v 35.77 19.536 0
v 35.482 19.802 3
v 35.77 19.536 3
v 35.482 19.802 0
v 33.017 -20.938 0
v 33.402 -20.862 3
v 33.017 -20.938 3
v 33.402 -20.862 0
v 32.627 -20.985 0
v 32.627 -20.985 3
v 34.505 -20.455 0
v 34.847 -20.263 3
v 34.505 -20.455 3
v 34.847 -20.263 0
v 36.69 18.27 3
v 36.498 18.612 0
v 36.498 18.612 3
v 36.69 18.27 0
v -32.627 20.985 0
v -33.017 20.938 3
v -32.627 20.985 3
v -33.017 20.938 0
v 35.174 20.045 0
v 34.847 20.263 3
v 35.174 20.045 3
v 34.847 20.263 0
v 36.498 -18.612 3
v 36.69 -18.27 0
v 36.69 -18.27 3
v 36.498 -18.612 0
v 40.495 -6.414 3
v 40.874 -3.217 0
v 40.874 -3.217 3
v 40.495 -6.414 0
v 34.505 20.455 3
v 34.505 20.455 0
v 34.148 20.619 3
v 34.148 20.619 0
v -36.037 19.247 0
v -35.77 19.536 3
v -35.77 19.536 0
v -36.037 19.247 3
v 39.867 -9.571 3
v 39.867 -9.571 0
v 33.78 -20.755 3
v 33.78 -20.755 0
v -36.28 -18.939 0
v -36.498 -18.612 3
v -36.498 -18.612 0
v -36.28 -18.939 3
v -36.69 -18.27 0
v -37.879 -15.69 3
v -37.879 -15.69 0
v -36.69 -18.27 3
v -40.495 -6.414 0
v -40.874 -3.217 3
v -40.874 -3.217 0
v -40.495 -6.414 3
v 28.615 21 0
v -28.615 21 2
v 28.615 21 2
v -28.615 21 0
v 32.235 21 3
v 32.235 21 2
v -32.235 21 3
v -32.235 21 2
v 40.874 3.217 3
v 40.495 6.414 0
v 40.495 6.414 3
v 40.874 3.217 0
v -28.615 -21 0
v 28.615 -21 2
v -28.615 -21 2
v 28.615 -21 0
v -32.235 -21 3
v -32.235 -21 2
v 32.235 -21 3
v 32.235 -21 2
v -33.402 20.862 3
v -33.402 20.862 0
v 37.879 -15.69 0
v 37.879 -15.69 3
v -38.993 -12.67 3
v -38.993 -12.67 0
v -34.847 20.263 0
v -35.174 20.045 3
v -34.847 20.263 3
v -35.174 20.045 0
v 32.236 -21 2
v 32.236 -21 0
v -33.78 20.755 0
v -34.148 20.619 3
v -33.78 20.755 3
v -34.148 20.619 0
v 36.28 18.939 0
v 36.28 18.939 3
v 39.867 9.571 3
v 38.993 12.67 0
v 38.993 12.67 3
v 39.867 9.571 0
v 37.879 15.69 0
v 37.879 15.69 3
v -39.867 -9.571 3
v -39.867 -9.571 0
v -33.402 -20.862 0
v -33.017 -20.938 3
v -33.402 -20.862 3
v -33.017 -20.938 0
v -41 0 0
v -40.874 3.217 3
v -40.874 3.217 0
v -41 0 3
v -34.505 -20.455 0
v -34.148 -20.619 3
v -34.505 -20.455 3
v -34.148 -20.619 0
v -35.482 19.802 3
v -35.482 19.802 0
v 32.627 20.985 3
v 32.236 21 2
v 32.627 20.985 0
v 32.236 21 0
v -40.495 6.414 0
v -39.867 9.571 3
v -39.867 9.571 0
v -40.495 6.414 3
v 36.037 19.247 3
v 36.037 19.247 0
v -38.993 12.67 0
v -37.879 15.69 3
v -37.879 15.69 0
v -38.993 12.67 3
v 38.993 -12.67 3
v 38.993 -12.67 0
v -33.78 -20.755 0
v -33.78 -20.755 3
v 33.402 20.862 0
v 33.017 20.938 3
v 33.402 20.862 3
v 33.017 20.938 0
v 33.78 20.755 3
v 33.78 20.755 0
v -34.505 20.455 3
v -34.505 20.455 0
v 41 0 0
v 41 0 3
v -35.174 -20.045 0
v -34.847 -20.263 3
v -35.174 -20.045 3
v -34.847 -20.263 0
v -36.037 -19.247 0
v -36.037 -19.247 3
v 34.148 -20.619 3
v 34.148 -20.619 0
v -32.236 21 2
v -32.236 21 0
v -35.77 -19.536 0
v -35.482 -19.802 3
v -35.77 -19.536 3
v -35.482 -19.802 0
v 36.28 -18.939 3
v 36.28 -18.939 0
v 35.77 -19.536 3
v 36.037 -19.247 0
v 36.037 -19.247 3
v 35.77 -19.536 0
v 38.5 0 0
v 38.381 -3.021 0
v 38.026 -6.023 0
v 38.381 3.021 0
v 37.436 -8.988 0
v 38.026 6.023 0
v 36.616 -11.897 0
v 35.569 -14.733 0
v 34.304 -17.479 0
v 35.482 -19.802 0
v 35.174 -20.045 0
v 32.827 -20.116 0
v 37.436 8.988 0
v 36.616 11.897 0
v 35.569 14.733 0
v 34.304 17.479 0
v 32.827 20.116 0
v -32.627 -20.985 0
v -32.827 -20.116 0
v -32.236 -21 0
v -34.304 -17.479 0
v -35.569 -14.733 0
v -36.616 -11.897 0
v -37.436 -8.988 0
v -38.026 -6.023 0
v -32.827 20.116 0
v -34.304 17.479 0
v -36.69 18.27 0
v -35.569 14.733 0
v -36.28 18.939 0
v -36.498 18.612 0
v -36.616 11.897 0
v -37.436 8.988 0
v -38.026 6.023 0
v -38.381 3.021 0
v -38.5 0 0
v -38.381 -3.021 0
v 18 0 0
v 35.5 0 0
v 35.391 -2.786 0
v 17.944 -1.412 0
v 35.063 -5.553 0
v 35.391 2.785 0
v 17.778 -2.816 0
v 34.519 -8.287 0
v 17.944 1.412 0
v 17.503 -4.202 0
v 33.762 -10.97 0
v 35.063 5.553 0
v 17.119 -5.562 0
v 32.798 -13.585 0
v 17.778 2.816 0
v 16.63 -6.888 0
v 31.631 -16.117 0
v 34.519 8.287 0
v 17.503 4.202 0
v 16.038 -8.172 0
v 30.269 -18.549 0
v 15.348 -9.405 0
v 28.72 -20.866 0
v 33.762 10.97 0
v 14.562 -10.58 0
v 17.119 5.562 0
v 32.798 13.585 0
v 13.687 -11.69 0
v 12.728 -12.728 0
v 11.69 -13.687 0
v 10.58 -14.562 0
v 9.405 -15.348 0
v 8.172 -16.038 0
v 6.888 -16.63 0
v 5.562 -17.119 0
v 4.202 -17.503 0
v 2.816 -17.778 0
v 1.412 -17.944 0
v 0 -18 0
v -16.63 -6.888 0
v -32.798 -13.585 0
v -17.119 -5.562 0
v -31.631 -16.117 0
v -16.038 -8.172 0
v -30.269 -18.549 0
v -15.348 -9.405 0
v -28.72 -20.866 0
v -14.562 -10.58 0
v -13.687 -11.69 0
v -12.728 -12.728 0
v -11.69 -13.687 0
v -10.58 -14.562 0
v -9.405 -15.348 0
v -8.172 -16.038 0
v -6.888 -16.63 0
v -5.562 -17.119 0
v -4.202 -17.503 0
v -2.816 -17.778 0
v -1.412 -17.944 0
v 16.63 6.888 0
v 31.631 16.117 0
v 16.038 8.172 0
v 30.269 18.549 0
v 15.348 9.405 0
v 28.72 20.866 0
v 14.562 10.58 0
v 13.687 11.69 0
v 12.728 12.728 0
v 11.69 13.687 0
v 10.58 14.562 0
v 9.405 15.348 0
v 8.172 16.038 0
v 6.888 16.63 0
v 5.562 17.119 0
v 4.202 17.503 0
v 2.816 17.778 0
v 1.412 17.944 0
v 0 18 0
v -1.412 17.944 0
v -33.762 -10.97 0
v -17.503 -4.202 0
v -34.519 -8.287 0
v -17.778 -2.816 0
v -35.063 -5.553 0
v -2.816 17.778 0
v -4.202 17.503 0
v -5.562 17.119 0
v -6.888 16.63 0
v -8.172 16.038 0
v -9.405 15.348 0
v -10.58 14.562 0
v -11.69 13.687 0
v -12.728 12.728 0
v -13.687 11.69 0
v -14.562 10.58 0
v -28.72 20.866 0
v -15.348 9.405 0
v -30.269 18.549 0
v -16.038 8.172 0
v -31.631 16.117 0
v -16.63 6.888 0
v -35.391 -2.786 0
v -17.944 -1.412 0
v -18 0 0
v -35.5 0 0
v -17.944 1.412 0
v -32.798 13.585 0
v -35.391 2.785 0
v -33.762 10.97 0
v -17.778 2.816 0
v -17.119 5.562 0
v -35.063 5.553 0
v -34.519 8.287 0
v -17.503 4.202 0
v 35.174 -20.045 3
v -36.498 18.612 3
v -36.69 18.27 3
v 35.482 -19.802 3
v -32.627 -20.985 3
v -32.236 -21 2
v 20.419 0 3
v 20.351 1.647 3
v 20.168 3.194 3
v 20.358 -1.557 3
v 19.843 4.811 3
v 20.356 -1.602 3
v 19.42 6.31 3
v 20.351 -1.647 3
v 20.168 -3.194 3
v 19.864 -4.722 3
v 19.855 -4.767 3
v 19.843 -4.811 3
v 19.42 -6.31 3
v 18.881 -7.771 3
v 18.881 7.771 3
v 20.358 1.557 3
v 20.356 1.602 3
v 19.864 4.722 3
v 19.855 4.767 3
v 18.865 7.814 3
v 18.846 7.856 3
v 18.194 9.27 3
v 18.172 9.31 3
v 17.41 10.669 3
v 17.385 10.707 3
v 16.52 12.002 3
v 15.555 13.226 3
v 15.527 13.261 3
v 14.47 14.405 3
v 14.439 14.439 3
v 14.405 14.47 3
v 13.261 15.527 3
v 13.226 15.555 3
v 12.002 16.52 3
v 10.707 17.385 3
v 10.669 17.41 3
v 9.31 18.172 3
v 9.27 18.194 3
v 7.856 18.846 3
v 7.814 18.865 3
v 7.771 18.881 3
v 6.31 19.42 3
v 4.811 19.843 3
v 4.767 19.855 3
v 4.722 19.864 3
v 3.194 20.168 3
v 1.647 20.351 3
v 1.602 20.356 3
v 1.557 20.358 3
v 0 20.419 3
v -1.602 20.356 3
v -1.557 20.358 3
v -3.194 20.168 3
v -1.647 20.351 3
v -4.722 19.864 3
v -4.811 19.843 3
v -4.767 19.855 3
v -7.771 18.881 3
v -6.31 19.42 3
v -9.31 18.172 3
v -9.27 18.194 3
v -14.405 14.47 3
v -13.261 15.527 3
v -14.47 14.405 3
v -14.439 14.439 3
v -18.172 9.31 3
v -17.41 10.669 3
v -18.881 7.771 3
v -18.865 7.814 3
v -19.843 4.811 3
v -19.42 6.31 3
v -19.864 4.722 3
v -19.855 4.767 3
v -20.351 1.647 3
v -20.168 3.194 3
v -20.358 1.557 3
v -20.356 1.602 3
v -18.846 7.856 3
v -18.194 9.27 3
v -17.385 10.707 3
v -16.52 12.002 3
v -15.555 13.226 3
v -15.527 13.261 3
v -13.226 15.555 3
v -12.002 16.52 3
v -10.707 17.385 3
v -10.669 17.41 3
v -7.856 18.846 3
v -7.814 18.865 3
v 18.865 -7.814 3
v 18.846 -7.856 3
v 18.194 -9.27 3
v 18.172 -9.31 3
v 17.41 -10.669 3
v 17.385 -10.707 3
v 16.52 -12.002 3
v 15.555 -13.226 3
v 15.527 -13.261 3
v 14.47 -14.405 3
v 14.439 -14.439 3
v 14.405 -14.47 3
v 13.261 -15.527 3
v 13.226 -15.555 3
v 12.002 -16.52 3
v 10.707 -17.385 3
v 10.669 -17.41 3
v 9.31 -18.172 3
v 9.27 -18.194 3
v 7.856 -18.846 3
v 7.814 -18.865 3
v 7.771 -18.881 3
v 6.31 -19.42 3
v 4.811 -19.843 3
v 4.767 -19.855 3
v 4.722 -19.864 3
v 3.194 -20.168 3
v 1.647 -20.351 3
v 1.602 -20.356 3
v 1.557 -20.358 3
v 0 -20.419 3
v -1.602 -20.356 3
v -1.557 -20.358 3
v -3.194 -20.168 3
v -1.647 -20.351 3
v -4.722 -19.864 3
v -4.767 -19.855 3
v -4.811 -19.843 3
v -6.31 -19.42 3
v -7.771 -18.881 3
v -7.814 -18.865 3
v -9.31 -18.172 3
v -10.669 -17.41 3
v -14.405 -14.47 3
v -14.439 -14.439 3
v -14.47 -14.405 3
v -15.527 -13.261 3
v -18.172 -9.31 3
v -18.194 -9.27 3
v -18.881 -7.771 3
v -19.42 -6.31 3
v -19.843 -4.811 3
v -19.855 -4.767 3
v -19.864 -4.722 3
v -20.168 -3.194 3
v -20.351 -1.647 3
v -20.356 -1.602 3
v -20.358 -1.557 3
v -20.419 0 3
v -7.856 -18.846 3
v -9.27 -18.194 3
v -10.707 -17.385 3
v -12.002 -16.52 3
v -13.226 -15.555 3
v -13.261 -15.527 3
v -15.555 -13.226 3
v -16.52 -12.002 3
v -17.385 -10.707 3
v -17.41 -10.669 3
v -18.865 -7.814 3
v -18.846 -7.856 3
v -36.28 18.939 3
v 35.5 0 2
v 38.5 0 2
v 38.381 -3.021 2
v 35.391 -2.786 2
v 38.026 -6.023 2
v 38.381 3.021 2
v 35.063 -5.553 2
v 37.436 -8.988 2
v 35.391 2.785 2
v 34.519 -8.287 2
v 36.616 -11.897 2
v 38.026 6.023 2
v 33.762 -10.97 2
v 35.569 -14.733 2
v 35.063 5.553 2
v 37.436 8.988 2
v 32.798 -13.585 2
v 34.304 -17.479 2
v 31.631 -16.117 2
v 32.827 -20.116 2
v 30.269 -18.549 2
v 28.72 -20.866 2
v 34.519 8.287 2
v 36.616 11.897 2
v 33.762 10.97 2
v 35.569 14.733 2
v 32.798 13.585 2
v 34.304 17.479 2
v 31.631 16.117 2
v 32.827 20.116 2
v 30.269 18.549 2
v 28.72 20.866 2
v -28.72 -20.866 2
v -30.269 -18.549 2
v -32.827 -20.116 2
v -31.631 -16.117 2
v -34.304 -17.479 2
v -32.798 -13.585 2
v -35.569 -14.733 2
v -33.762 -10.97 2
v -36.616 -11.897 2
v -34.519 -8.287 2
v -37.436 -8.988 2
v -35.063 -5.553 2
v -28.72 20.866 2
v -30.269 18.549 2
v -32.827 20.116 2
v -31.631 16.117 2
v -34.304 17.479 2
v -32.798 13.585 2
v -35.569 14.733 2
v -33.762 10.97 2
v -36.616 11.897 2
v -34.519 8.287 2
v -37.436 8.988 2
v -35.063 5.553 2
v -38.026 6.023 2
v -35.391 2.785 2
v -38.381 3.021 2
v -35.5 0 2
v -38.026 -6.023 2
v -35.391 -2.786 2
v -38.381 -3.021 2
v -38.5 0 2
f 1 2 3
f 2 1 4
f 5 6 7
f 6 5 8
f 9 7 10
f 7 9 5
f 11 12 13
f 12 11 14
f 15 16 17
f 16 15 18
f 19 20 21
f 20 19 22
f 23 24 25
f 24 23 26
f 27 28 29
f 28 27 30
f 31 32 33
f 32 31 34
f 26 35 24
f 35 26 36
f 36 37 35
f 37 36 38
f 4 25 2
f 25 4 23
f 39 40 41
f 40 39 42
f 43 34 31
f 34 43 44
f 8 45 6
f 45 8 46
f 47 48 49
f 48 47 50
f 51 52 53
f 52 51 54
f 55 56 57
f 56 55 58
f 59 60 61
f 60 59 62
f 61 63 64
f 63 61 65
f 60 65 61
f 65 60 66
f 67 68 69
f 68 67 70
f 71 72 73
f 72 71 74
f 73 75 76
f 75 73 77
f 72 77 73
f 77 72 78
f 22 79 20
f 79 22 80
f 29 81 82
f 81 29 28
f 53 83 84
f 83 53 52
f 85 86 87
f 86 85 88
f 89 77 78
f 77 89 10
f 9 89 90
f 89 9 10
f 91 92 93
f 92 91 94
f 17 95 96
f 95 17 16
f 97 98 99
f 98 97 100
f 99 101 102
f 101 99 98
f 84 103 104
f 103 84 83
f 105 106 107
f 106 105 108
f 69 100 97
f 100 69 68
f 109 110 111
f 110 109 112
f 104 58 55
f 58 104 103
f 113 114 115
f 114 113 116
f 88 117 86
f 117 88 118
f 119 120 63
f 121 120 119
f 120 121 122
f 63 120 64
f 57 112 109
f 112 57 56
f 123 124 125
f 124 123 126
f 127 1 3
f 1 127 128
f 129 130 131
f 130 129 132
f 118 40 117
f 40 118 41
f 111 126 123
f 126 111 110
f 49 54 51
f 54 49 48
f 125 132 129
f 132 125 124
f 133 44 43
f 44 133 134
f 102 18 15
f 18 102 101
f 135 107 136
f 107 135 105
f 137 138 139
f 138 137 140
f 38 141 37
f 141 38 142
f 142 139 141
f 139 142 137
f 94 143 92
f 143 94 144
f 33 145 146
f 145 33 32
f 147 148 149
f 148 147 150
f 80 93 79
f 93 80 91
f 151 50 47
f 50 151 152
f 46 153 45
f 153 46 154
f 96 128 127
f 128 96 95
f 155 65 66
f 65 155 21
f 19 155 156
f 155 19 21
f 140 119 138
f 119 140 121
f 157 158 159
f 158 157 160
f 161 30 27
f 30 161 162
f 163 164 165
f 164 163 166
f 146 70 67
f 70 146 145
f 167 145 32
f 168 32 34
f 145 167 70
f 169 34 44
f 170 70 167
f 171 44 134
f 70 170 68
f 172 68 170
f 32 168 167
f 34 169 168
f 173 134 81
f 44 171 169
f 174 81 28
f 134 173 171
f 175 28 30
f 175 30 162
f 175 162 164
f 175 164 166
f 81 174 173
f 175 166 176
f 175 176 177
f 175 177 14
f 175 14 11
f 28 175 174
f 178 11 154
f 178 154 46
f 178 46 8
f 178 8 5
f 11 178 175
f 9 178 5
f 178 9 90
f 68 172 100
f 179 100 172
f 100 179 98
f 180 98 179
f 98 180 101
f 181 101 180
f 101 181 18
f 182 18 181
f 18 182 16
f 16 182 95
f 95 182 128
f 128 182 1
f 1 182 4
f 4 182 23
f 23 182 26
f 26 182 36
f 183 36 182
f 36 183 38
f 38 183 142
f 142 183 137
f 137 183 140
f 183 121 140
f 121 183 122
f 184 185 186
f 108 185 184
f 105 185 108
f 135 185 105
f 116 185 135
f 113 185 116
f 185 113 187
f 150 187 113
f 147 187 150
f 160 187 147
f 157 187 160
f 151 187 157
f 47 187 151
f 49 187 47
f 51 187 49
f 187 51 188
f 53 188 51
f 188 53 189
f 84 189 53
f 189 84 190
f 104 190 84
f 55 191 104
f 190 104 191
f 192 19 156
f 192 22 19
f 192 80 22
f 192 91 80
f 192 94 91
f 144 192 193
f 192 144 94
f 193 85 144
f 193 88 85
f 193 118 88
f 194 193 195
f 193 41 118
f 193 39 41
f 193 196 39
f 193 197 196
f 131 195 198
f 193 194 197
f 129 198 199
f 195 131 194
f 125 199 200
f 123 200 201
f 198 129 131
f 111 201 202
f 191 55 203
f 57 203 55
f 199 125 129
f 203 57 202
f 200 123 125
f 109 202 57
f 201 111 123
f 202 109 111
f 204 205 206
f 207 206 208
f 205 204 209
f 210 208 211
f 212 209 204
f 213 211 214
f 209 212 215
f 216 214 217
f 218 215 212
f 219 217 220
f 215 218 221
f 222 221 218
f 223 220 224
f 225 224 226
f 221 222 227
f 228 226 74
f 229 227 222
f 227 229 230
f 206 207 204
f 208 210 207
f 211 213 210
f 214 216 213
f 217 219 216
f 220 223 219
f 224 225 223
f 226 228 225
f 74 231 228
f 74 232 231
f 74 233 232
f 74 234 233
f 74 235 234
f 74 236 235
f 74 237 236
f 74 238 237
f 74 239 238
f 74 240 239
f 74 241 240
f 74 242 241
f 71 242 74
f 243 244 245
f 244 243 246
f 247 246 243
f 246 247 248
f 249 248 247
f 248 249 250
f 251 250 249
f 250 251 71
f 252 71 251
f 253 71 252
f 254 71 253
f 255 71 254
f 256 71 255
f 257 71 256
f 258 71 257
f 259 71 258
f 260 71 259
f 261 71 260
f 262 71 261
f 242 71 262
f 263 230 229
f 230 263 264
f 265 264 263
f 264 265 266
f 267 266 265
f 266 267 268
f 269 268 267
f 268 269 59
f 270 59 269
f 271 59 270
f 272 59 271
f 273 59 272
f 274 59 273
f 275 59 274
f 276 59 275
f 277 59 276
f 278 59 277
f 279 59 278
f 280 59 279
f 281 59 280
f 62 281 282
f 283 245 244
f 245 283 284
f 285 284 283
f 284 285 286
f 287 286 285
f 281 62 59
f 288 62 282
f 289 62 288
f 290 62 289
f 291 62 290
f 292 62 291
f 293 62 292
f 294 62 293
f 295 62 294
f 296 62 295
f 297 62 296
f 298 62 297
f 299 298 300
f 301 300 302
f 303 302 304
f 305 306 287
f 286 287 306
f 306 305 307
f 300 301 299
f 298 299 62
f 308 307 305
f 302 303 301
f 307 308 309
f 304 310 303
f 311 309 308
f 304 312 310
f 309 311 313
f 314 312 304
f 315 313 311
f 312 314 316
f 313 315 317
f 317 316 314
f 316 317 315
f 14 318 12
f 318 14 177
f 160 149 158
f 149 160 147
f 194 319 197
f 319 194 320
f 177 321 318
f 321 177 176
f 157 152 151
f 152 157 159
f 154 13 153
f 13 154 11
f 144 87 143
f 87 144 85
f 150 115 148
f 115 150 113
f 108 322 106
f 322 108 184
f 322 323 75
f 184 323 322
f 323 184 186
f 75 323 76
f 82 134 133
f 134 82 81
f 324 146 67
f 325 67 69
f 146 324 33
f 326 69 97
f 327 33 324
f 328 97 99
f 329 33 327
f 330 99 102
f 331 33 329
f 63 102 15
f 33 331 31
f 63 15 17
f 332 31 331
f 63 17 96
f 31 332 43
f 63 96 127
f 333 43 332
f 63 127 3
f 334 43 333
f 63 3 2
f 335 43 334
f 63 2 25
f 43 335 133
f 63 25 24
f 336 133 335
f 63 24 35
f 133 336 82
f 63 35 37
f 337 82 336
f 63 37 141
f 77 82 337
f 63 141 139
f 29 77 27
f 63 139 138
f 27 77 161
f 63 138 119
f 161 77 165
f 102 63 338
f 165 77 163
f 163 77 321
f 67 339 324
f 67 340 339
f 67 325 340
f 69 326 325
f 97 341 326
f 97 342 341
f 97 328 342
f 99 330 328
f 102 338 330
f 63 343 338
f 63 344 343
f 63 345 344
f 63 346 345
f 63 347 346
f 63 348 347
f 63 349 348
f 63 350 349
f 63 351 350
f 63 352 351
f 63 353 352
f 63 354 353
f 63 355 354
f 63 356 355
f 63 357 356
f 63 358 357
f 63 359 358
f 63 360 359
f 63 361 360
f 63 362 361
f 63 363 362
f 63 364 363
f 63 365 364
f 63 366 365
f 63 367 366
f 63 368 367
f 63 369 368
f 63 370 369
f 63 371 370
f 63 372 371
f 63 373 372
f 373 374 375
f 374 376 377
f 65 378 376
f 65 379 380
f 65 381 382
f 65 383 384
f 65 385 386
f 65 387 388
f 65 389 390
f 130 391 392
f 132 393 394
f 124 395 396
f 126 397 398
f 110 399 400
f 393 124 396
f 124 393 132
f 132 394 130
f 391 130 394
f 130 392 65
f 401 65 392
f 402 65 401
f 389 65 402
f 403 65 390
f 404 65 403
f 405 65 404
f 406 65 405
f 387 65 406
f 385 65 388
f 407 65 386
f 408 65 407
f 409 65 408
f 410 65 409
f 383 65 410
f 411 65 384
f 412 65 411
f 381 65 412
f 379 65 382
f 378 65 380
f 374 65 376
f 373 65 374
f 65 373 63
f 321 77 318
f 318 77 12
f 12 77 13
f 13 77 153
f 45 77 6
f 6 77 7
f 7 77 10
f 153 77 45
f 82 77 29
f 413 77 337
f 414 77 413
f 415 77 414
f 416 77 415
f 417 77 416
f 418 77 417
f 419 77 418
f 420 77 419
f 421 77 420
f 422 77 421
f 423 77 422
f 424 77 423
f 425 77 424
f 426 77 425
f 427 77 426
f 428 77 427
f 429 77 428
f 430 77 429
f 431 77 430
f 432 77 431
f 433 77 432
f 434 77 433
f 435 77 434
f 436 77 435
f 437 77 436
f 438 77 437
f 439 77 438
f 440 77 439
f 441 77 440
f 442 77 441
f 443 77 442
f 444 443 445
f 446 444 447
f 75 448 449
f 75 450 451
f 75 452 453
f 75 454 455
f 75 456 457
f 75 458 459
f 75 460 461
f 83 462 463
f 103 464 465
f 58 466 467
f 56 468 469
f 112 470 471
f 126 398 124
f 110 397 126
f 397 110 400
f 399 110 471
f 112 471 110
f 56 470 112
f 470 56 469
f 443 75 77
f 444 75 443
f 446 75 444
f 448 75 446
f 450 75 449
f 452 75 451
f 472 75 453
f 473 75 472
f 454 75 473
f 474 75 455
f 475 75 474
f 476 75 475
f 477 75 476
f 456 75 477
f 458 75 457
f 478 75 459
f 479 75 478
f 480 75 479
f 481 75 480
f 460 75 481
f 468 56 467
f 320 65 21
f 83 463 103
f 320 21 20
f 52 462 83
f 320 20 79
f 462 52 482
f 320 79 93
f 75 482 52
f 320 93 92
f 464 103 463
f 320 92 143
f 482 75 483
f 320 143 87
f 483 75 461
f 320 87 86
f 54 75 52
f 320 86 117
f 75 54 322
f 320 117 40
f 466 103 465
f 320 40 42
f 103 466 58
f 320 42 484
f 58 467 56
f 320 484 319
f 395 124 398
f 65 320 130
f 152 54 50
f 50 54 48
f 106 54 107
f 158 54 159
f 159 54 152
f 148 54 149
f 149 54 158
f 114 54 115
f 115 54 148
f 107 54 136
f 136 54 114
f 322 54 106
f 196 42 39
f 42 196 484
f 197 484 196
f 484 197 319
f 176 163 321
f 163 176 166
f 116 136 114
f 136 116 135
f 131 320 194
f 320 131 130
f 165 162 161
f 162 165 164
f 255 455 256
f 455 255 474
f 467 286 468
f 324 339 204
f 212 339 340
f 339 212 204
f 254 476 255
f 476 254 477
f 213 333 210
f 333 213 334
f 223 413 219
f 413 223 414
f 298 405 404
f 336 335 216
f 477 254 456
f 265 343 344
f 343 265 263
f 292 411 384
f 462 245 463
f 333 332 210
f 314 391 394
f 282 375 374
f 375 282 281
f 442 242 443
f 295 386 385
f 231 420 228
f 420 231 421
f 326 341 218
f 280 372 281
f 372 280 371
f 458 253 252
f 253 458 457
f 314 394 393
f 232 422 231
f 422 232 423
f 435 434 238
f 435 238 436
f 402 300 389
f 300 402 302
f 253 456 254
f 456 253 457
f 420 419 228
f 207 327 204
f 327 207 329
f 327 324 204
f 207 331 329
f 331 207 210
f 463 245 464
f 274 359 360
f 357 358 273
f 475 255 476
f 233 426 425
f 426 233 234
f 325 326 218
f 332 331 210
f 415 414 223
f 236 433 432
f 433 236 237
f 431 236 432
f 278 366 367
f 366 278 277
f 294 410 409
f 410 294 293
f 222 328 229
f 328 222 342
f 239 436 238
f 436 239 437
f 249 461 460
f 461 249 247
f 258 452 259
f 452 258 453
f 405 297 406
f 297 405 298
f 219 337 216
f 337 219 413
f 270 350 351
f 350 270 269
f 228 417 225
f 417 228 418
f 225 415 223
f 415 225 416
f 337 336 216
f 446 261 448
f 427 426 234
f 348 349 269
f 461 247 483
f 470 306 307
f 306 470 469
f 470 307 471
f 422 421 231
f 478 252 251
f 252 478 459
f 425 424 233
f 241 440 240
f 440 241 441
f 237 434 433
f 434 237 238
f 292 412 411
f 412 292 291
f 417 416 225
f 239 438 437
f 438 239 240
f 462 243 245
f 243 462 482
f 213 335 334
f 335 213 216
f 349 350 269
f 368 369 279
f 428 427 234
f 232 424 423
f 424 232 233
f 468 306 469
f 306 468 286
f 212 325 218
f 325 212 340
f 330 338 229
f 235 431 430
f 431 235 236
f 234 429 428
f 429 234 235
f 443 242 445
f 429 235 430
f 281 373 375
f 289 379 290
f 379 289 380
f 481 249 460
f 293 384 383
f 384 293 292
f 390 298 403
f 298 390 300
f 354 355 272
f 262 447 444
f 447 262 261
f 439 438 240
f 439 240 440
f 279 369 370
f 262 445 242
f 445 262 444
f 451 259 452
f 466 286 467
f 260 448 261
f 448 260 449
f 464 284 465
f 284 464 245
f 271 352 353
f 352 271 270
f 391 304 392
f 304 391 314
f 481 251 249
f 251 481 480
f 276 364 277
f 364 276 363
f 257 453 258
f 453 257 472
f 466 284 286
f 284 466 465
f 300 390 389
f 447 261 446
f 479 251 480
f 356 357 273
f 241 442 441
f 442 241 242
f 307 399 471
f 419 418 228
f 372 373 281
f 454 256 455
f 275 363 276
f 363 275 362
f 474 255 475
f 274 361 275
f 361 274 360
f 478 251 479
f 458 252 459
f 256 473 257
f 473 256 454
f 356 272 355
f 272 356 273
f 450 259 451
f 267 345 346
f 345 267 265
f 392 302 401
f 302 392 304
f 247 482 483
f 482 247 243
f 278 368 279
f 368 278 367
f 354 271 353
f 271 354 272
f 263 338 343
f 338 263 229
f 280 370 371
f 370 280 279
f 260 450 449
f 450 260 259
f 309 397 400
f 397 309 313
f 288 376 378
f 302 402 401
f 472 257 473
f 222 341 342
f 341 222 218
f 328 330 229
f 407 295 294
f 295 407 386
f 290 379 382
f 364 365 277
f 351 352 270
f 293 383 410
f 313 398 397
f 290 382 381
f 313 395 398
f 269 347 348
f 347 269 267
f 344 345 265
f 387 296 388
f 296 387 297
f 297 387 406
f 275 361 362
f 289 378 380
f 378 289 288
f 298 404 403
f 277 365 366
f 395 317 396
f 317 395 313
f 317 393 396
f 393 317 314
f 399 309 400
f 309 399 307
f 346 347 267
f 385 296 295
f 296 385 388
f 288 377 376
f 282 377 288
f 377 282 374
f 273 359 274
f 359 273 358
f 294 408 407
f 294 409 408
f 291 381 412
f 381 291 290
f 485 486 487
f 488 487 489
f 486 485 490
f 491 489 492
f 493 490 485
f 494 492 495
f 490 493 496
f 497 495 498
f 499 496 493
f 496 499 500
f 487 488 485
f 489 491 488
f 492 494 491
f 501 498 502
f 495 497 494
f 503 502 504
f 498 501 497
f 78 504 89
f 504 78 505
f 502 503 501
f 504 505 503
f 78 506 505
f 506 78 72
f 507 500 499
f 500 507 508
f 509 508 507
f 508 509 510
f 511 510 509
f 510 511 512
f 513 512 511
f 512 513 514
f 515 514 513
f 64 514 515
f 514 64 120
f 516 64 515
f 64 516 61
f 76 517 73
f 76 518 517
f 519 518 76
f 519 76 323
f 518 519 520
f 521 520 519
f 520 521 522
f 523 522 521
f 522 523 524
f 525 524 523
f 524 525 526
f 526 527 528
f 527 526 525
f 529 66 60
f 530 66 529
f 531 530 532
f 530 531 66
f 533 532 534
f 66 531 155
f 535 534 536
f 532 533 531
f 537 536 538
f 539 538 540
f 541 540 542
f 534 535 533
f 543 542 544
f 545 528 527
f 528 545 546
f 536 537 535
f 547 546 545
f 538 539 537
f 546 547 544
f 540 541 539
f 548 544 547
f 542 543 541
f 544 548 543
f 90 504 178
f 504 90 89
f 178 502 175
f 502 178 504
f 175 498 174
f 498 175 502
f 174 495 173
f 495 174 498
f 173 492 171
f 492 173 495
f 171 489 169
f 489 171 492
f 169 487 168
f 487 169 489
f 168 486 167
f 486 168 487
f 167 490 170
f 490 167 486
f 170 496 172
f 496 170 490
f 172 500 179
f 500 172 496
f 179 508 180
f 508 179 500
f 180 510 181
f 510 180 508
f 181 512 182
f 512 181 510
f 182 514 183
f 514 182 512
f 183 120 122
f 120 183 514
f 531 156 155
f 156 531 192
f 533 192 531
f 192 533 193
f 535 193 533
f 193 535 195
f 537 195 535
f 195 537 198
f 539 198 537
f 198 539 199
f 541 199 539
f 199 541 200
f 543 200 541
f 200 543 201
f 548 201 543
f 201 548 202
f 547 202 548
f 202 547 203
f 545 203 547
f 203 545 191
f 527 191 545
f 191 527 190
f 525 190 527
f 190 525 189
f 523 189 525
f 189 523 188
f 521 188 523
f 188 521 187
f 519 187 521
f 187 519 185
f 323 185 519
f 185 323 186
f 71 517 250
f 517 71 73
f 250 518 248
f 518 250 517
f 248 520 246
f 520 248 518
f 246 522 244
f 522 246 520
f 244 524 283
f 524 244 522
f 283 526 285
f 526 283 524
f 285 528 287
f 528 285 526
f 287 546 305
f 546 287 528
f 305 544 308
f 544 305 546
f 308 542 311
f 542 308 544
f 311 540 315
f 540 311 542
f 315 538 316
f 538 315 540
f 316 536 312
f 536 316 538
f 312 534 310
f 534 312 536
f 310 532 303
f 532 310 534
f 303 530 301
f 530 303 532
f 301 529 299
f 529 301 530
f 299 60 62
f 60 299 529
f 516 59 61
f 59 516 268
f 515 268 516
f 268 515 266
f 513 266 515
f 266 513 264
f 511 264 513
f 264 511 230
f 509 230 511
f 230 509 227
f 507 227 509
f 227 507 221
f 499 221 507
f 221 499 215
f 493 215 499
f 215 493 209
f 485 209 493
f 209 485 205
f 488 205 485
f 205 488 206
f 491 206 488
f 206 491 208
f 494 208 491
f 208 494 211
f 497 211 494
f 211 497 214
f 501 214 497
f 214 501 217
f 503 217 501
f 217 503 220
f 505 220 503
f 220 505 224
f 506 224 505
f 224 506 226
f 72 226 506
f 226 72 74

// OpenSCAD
// file: scad-utils/mirror.scad
// Laser Tunnel -- Angled Mirror Holder
// Adrian McCarthy 2022

// A larger angle makes a wider cone of light. (degrees)
Angle = 5; // [3:1:20]

// The mirror should not be wider than the hub of the fan. (mm)
Mirror_Diameter = 25.4; // [20:0.2:27]

// The mirror should be thin and light. (mm)
Mirror_Thickness = 1.75; // [1:0.25:2]

// Some dimensions may be optimized for your printer's nozzle size, but the default value should work for most. (mm)
Nozzle_Diameter = 0.4;  // [0.1:0.1:0.8]

module angled_mirror_holder(angle=5, mirror_d=25.4, mirror_th=1.75, nozzle_d=0.4) {
    h = mirror_d;
    inner_d = mirror_d + nozzle_d;
    outer_d = inner_d + 2;
    box = sqrt(2)*outer_d;
    intersection() {
        r = inner_d/2;
        translate([r, 0, 0]) rotate([0, angle, 0]) translate([-r, 0, 0])
        difference() {
            translate([0, 0, mirror_th-h]) cylinder(d=outer_d, h=h);
            translate([0, 0, 0.1]) cylinder(d=inner_d, h=h);
        }

        translate([-box/2, -box/2, 0]) cube(box);
    }
}

angled_mirror_holder(Angle, Mirror_Diameter, Mirror_Thickness, Nozzle_Diameter, $fn=92);
// file: scad-utils/morphology.scad
// Copyright (c) 2013 Oskar Linde. All rights reserved.
// License: BSD
//
// This library contains basic 2D morphology operations
//
// outset(d=1)            - creates a polygon at an offset d outside a 2D shape
// inset(d=1)             - creates a polygon at an offset d inside a 2D shape
// fillet(r=1)            - adds fillets of radius r to all concave corners of a 2D shape
// rounding(r=1)          - adds rounding to all convex corners of a 2D shape
// shell(d,center=false)  - makes a shell of width d along the edge of a 2D shape
//                        - positive values of d places the shell on the outside
//                        - negative values of d places the shell on the inside
//                        - center=true and positive d places the shell centered on the edge

module outset(d=1) {
	// Bug workaround for older OpenSCAD versions
	if (version_num() < 20130424) render() outset_extruded(d) children();
	else minkowski() {
		circle(r=d);
		children();
	}
}

module outset_extruded(d=1) {
   projection(cut=true) minkowski() {
        cylinder(r=d);
        linear_extrude(center=true) children();
   }
}

module inset(d=1) {
	 render() inverse() outset(d=d) inverse() children();
}

module fillet(r=1) {
	inset(d=r) render() outset(d=r) children();
}

module rounding(r=1) {
	outset(d=r) inset(d=r) children();
}

module shell(d,center=false) {
	if (center && d > 0) {
		difference() {
			outset(d=d/2) children();
			inset(d=d/2) children();
		}
	}
	if (!center && d > 0) {
		difference() {
			outset(d=d) children();
			children();
		}
	}
	if (!center && d < 0) {
		difference() {
			children();
			inset(d=-d) children();
		}
	}
	if (d == 0) children();
}


// Below are for internal use only

module inverse() {
	difference() {
		square(1e5,center=true);
		children();
	}
}


// TEST CODE

use <mirror.scad>

module arrow(l=1,w=.6,t=0.15) {
	mirror_y() polygon([[0,0],[l,0],[l-w/2,w/2],[l-w/2-sqrt(2)*t,w/2],[l-t/2-sqrt(2)*t,t/2],[0,t/2]]);
}

module shape() {
	polygon([[0,0],[1,0],[1.5,1],[2.5,1],[2,-1],[0,-1]]);
}

if(0) assign($fn=32) {

	for (p = [0:10*3-1]) assign(o=floor(p/3)) {
		translate([(p%3)*2.5,-o*3]) {
			//%if (p % 3 == 1) translate([0,0,1]) shape();
			if (p % 3 == 0) shape();
			if (p % 3 == 1) translate([0.6,0]) arrow();
			if (p % 3 == 2) {
				if (o == 0) inset(d=0.3) shape();
				if (o == 1) outset(d=0.3) shape();
				if (o == 2) rounding(r=0.3) shape();
				if (o == 3) fillet(r=0.3) shape();
				if (o == 4) shell(d=0.3) shape();
				if (o == 5) shell(d=-0.3) shape();
				if (o == 6) shell(d=0.3,center=true) shape();
				if (o == 7) rounding(r=0.3) fillet(r=0.3) shape();
				if (o == 8) shell(d=0.3,center=true) fillet(r=0.3) rounding(r=0.3) shape();
				if (o == 9) shell(d=-0.3) fillet(r=0.3) rounding(r=0.3) shape();
			}
		}
	}
}
// main file
include <scad-utils/morphology.scad>

$fn = 80;

/* Variables */
// Cup diameter
CUP_D = 76;
// Cup edge width
CUP_EDGE_W = 2;

// Holder center hole diameter (seed diameter)
AVOCADO_HOLDER_HOLE_D = 36;
// Holder dimensions
AVOCADO_HOLDER = [ CUP_D + 6, AVOCADO_HOLDER_HOLE_D + 6, 3 ];

module avocado_holder() {
  difference() {
    // body
    linear_extrude(height = AVOCADO_HOLDER.z, center = !true, convexity = 10,
                   twist = 0) {
      rounding(r = 5) {
        intersection() {
          circle(d = AVOCADO_HOLDER.x);
          square(size = [ AVOCADO_HOLDER.x, AVOCADO_HOLDER.y ], center = true);
        }
      }
    }

    // center hole
    cylinder(h = AVOCADO_HOLDER.z + 0.1, d1 = AVOCADO_HOLDER_HOLE_D,
             d2 = AVOCADO_HOLDER.y - 1);

    // chase for the edge
    chase_w = CUP_EDGE_W + 1;
    linear_extrude(height = AVOCADO_HOLDER.z - 1, center = false,
                   convexity = 10, twist = 0) {
      shell(d = chase_w, center = true) circle(d = CUP_D - CUP_EDGE_W);
    }
  }
}

avocado_holder();
